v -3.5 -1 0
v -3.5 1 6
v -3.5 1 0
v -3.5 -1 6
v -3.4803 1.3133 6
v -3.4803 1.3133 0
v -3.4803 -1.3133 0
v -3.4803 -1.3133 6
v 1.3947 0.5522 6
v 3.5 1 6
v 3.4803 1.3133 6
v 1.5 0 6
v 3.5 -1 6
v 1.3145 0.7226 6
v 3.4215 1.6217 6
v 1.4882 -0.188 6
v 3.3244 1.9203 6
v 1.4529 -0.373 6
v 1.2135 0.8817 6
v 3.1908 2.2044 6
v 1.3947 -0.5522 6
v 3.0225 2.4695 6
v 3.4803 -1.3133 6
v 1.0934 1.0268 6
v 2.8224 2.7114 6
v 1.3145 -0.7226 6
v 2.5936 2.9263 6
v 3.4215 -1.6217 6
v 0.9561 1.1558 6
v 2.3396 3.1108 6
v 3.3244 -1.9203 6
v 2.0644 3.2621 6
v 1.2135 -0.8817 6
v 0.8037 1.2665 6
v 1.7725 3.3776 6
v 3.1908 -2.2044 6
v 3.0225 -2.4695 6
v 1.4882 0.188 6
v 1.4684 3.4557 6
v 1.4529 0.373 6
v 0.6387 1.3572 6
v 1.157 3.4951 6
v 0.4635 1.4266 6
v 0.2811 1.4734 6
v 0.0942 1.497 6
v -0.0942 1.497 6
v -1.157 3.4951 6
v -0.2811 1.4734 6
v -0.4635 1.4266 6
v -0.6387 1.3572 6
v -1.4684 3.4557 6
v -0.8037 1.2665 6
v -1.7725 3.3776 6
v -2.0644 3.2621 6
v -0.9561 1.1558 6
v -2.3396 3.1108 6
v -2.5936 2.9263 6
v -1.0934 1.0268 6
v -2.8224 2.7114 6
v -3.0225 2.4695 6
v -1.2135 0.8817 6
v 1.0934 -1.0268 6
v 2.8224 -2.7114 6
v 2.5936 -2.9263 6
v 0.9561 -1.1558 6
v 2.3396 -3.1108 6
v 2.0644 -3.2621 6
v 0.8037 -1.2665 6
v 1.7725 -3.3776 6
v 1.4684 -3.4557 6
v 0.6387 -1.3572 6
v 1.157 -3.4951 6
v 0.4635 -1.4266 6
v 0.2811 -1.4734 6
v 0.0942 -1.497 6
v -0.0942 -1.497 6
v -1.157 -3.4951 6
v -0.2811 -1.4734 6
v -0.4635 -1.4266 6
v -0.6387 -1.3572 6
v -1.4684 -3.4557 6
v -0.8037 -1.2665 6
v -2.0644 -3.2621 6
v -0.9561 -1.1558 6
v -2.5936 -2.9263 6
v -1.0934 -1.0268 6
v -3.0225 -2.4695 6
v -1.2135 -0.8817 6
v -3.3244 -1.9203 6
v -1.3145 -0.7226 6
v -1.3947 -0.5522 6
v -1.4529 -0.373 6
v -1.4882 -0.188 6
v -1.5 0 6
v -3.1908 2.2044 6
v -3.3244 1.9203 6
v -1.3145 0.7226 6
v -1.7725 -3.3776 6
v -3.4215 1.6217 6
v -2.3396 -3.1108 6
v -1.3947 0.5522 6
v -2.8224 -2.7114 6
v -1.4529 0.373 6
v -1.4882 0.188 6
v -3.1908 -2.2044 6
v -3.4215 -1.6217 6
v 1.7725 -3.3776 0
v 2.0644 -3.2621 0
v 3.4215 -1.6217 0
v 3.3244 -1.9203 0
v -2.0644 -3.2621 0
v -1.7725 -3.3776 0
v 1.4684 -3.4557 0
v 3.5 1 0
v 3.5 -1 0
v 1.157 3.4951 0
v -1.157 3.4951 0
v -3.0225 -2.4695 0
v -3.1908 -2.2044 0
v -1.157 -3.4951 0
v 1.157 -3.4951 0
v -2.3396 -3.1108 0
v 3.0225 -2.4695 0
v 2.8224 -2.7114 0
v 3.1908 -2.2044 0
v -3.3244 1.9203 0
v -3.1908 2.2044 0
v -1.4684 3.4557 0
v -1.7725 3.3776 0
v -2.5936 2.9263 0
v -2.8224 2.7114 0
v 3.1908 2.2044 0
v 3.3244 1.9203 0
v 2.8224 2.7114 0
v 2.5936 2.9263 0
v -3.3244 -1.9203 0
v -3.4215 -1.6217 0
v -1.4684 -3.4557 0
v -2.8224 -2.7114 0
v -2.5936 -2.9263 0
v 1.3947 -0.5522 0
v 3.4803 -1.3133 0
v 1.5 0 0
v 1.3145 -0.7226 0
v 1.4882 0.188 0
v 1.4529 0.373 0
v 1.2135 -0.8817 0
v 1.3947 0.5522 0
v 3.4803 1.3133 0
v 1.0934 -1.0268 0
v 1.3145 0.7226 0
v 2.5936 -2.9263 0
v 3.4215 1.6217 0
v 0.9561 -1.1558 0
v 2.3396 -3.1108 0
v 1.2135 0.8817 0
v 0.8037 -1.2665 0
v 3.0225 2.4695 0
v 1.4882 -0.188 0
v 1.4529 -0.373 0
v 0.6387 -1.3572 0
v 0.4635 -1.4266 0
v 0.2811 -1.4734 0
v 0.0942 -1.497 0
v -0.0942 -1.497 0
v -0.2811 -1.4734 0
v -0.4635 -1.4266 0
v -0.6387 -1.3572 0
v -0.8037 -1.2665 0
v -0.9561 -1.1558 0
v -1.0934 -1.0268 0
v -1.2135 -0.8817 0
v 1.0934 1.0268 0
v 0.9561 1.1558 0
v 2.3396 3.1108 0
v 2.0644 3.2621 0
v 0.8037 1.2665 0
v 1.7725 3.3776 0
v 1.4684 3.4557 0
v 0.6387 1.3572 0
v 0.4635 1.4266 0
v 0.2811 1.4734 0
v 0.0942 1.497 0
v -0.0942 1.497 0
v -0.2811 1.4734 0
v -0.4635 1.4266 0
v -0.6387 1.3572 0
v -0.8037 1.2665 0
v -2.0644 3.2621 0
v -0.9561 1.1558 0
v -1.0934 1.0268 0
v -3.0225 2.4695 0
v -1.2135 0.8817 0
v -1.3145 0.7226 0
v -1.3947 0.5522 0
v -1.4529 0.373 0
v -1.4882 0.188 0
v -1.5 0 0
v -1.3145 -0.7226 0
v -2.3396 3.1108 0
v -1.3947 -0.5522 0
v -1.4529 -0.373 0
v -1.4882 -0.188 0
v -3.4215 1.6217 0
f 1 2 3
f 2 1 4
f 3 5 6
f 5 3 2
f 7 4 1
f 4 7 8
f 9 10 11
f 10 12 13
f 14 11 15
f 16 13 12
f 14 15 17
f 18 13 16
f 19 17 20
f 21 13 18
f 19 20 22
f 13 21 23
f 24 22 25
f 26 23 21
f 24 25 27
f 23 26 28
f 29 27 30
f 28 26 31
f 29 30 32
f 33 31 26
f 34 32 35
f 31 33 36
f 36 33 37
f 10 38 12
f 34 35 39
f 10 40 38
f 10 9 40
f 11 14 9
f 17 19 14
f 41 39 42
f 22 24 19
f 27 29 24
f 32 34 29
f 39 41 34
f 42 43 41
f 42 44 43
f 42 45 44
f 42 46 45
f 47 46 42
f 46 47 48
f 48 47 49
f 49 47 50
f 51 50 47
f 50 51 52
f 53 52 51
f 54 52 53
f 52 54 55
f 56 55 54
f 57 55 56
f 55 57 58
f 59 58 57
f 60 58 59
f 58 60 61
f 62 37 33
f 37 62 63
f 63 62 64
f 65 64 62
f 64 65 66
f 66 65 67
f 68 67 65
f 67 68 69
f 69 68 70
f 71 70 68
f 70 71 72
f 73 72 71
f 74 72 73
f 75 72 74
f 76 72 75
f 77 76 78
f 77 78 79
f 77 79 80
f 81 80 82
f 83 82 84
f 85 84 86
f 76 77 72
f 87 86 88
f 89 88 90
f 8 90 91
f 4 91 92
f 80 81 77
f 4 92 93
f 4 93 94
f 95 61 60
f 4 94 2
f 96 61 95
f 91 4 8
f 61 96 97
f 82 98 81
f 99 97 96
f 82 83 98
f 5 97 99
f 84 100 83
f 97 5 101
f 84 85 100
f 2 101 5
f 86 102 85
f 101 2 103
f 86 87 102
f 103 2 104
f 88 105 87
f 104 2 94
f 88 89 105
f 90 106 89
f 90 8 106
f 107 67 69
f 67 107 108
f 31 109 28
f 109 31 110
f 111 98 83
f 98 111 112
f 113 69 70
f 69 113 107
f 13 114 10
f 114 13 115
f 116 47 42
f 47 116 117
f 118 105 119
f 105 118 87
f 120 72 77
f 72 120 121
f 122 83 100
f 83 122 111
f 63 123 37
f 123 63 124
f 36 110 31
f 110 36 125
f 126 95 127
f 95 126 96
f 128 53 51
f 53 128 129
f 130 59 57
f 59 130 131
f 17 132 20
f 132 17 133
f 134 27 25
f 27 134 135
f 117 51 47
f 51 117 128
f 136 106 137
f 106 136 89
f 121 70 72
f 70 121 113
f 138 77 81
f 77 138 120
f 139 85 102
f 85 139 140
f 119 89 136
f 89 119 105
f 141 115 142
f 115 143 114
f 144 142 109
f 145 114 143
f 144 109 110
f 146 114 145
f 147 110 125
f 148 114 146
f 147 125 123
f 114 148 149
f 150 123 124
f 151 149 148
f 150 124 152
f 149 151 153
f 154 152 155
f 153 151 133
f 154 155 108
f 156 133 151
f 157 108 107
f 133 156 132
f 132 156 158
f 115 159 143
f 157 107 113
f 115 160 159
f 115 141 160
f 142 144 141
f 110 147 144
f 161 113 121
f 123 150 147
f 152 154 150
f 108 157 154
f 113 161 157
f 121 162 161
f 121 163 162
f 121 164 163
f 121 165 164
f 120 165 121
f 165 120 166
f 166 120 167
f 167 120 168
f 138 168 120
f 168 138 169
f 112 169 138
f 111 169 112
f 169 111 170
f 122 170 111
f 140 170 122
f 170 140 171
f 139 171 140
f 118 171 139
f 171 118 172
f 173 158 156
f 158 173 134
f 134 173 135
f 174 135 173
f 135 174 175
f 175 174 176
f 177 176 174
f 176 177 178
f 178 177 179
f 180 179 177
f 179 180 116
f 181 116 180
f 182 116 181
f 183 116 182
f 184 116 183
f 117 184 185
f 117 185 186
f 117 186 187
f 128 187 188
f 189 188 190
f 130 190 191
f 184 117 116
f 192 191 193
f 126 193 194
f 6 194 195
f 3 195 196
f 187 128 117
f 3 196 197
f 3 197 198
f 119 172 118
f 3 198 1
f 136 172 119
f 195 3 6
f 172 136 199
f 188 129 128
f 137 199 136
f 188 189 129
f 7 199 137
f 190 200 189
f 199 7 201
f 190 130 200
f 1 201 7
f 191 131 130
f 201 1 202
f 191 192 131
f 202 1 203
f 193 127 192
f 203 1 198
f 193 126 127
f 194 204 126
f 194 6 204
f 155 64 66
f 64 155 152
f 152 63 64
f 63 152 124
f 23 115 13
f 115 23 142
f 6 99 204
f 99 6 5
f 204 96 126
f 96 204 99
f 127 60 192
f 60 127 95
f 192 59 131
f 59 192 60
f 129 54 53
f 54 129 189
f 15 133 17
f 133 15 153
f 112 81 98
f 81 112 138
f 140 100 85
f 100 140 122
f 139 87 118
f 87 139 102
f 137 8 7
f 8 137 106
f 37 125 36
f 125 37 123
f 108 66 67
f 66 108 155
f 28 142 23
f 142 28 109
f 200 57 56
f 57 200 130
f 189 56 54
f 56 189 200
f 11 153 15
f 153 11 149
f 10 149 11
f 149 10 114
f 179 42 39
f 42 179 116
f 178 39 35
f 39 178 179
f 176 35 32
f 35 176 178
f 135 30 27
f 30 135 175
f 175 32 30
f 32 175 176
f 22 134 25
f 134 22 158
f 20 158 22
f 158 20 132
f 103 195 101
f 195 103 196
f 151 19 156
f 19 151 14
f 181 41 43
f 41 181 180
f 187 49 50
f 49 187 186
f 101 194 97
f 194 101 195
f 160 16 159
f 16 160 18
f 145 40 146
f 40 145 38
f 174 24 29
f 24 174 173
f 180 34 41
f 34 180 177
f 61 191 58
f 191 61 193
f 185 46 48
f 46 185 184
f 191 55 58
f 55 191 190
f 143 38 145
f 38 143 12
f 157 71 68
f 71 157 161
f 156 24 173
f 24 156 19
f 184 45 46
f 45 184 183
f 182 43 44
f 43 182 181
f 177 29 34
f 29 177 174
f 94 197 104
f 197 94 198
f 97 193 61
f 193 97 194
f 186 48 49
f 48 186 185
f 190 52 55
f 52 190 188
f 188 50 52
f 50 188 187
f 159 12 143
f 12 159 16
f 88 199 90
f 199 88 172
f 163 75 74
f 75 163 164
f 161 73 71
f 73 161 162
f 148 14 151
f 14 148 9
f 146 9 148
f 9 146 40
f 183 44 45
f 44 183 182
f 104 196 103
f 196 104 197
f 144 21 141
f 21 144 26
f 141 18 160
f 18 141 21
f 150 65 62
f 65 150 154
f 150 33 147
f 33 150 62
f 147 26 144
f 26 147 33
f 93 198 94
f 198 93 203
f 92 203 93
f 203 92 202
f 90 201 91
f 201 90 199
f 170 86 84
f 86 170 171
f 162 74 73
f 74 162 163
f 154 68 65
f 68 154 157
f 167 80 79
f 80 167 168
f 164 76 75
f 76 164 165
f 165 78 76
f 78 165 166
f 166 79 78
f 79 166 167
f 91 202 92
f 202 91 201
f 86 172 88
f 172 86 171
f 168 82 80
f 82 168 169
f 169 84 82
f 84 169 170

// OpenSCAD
$fn = 50;


difference() {
	union() {
		translate(v = [0, 0, 0]) {
			rotate(a = [0, 0, 0]) {
				hull() {
					translate(v = [-1.0000000000, 1.0000000000, 0]) {
						rotate(a = [0, 0, 0]) {
							translate(v = [0, 0, 0]) {
								rotate(a = [0, 0, 0]) {
									cylinder(h = 6.0000000000, r = 2.5000000000);
								}
							}
						}
					}
					translate(v = [1.0000000000, 1.0000000000, 0]) {
						rotate(a = [0, 0, 0]) {
							translate(v = [0, 0, 0]) {
								rotate(a = [0, 0, 0]) {
									cylinder(h = 6.0000000000, r = 2.5000000000);
								}
							}
						}
					}
					translate(v = [-1.0000000000, -1.0000000000, 0]) {
						rotate(a = [0, 0, 0]) {
							translate(v = [0, 0, 0]) {
								rotate(a = [0, 0, 0]) {
									cylinder(h = 6.0000000000, r = 2.5000000000);
								}
							}
						}
					}
					translate(v = [1.0000000000, -1.0000000000, 0]) {
						rotate(a = [0, 0, 0]) {
							translate(v = [0, 0, 0]) {
								rotate(a = [0, 0, 0]) {
									cylinder(h = 6.0000000000, r = 2.5000000000);
								}
							}
						}
					}
				}
			}
		}
	}
	union() {
		translate(v = [0.0000000000, 0.0000000000, 0]) {
			rotate(a = [0, 0, 0]) {
				translate(v = [0, 0, -50]) {
					rotate(a = [0, 0, 0]) {
						cylinder(h = 100, r = 1.5000000000);
					}
				}
			}
		}
	}
}
